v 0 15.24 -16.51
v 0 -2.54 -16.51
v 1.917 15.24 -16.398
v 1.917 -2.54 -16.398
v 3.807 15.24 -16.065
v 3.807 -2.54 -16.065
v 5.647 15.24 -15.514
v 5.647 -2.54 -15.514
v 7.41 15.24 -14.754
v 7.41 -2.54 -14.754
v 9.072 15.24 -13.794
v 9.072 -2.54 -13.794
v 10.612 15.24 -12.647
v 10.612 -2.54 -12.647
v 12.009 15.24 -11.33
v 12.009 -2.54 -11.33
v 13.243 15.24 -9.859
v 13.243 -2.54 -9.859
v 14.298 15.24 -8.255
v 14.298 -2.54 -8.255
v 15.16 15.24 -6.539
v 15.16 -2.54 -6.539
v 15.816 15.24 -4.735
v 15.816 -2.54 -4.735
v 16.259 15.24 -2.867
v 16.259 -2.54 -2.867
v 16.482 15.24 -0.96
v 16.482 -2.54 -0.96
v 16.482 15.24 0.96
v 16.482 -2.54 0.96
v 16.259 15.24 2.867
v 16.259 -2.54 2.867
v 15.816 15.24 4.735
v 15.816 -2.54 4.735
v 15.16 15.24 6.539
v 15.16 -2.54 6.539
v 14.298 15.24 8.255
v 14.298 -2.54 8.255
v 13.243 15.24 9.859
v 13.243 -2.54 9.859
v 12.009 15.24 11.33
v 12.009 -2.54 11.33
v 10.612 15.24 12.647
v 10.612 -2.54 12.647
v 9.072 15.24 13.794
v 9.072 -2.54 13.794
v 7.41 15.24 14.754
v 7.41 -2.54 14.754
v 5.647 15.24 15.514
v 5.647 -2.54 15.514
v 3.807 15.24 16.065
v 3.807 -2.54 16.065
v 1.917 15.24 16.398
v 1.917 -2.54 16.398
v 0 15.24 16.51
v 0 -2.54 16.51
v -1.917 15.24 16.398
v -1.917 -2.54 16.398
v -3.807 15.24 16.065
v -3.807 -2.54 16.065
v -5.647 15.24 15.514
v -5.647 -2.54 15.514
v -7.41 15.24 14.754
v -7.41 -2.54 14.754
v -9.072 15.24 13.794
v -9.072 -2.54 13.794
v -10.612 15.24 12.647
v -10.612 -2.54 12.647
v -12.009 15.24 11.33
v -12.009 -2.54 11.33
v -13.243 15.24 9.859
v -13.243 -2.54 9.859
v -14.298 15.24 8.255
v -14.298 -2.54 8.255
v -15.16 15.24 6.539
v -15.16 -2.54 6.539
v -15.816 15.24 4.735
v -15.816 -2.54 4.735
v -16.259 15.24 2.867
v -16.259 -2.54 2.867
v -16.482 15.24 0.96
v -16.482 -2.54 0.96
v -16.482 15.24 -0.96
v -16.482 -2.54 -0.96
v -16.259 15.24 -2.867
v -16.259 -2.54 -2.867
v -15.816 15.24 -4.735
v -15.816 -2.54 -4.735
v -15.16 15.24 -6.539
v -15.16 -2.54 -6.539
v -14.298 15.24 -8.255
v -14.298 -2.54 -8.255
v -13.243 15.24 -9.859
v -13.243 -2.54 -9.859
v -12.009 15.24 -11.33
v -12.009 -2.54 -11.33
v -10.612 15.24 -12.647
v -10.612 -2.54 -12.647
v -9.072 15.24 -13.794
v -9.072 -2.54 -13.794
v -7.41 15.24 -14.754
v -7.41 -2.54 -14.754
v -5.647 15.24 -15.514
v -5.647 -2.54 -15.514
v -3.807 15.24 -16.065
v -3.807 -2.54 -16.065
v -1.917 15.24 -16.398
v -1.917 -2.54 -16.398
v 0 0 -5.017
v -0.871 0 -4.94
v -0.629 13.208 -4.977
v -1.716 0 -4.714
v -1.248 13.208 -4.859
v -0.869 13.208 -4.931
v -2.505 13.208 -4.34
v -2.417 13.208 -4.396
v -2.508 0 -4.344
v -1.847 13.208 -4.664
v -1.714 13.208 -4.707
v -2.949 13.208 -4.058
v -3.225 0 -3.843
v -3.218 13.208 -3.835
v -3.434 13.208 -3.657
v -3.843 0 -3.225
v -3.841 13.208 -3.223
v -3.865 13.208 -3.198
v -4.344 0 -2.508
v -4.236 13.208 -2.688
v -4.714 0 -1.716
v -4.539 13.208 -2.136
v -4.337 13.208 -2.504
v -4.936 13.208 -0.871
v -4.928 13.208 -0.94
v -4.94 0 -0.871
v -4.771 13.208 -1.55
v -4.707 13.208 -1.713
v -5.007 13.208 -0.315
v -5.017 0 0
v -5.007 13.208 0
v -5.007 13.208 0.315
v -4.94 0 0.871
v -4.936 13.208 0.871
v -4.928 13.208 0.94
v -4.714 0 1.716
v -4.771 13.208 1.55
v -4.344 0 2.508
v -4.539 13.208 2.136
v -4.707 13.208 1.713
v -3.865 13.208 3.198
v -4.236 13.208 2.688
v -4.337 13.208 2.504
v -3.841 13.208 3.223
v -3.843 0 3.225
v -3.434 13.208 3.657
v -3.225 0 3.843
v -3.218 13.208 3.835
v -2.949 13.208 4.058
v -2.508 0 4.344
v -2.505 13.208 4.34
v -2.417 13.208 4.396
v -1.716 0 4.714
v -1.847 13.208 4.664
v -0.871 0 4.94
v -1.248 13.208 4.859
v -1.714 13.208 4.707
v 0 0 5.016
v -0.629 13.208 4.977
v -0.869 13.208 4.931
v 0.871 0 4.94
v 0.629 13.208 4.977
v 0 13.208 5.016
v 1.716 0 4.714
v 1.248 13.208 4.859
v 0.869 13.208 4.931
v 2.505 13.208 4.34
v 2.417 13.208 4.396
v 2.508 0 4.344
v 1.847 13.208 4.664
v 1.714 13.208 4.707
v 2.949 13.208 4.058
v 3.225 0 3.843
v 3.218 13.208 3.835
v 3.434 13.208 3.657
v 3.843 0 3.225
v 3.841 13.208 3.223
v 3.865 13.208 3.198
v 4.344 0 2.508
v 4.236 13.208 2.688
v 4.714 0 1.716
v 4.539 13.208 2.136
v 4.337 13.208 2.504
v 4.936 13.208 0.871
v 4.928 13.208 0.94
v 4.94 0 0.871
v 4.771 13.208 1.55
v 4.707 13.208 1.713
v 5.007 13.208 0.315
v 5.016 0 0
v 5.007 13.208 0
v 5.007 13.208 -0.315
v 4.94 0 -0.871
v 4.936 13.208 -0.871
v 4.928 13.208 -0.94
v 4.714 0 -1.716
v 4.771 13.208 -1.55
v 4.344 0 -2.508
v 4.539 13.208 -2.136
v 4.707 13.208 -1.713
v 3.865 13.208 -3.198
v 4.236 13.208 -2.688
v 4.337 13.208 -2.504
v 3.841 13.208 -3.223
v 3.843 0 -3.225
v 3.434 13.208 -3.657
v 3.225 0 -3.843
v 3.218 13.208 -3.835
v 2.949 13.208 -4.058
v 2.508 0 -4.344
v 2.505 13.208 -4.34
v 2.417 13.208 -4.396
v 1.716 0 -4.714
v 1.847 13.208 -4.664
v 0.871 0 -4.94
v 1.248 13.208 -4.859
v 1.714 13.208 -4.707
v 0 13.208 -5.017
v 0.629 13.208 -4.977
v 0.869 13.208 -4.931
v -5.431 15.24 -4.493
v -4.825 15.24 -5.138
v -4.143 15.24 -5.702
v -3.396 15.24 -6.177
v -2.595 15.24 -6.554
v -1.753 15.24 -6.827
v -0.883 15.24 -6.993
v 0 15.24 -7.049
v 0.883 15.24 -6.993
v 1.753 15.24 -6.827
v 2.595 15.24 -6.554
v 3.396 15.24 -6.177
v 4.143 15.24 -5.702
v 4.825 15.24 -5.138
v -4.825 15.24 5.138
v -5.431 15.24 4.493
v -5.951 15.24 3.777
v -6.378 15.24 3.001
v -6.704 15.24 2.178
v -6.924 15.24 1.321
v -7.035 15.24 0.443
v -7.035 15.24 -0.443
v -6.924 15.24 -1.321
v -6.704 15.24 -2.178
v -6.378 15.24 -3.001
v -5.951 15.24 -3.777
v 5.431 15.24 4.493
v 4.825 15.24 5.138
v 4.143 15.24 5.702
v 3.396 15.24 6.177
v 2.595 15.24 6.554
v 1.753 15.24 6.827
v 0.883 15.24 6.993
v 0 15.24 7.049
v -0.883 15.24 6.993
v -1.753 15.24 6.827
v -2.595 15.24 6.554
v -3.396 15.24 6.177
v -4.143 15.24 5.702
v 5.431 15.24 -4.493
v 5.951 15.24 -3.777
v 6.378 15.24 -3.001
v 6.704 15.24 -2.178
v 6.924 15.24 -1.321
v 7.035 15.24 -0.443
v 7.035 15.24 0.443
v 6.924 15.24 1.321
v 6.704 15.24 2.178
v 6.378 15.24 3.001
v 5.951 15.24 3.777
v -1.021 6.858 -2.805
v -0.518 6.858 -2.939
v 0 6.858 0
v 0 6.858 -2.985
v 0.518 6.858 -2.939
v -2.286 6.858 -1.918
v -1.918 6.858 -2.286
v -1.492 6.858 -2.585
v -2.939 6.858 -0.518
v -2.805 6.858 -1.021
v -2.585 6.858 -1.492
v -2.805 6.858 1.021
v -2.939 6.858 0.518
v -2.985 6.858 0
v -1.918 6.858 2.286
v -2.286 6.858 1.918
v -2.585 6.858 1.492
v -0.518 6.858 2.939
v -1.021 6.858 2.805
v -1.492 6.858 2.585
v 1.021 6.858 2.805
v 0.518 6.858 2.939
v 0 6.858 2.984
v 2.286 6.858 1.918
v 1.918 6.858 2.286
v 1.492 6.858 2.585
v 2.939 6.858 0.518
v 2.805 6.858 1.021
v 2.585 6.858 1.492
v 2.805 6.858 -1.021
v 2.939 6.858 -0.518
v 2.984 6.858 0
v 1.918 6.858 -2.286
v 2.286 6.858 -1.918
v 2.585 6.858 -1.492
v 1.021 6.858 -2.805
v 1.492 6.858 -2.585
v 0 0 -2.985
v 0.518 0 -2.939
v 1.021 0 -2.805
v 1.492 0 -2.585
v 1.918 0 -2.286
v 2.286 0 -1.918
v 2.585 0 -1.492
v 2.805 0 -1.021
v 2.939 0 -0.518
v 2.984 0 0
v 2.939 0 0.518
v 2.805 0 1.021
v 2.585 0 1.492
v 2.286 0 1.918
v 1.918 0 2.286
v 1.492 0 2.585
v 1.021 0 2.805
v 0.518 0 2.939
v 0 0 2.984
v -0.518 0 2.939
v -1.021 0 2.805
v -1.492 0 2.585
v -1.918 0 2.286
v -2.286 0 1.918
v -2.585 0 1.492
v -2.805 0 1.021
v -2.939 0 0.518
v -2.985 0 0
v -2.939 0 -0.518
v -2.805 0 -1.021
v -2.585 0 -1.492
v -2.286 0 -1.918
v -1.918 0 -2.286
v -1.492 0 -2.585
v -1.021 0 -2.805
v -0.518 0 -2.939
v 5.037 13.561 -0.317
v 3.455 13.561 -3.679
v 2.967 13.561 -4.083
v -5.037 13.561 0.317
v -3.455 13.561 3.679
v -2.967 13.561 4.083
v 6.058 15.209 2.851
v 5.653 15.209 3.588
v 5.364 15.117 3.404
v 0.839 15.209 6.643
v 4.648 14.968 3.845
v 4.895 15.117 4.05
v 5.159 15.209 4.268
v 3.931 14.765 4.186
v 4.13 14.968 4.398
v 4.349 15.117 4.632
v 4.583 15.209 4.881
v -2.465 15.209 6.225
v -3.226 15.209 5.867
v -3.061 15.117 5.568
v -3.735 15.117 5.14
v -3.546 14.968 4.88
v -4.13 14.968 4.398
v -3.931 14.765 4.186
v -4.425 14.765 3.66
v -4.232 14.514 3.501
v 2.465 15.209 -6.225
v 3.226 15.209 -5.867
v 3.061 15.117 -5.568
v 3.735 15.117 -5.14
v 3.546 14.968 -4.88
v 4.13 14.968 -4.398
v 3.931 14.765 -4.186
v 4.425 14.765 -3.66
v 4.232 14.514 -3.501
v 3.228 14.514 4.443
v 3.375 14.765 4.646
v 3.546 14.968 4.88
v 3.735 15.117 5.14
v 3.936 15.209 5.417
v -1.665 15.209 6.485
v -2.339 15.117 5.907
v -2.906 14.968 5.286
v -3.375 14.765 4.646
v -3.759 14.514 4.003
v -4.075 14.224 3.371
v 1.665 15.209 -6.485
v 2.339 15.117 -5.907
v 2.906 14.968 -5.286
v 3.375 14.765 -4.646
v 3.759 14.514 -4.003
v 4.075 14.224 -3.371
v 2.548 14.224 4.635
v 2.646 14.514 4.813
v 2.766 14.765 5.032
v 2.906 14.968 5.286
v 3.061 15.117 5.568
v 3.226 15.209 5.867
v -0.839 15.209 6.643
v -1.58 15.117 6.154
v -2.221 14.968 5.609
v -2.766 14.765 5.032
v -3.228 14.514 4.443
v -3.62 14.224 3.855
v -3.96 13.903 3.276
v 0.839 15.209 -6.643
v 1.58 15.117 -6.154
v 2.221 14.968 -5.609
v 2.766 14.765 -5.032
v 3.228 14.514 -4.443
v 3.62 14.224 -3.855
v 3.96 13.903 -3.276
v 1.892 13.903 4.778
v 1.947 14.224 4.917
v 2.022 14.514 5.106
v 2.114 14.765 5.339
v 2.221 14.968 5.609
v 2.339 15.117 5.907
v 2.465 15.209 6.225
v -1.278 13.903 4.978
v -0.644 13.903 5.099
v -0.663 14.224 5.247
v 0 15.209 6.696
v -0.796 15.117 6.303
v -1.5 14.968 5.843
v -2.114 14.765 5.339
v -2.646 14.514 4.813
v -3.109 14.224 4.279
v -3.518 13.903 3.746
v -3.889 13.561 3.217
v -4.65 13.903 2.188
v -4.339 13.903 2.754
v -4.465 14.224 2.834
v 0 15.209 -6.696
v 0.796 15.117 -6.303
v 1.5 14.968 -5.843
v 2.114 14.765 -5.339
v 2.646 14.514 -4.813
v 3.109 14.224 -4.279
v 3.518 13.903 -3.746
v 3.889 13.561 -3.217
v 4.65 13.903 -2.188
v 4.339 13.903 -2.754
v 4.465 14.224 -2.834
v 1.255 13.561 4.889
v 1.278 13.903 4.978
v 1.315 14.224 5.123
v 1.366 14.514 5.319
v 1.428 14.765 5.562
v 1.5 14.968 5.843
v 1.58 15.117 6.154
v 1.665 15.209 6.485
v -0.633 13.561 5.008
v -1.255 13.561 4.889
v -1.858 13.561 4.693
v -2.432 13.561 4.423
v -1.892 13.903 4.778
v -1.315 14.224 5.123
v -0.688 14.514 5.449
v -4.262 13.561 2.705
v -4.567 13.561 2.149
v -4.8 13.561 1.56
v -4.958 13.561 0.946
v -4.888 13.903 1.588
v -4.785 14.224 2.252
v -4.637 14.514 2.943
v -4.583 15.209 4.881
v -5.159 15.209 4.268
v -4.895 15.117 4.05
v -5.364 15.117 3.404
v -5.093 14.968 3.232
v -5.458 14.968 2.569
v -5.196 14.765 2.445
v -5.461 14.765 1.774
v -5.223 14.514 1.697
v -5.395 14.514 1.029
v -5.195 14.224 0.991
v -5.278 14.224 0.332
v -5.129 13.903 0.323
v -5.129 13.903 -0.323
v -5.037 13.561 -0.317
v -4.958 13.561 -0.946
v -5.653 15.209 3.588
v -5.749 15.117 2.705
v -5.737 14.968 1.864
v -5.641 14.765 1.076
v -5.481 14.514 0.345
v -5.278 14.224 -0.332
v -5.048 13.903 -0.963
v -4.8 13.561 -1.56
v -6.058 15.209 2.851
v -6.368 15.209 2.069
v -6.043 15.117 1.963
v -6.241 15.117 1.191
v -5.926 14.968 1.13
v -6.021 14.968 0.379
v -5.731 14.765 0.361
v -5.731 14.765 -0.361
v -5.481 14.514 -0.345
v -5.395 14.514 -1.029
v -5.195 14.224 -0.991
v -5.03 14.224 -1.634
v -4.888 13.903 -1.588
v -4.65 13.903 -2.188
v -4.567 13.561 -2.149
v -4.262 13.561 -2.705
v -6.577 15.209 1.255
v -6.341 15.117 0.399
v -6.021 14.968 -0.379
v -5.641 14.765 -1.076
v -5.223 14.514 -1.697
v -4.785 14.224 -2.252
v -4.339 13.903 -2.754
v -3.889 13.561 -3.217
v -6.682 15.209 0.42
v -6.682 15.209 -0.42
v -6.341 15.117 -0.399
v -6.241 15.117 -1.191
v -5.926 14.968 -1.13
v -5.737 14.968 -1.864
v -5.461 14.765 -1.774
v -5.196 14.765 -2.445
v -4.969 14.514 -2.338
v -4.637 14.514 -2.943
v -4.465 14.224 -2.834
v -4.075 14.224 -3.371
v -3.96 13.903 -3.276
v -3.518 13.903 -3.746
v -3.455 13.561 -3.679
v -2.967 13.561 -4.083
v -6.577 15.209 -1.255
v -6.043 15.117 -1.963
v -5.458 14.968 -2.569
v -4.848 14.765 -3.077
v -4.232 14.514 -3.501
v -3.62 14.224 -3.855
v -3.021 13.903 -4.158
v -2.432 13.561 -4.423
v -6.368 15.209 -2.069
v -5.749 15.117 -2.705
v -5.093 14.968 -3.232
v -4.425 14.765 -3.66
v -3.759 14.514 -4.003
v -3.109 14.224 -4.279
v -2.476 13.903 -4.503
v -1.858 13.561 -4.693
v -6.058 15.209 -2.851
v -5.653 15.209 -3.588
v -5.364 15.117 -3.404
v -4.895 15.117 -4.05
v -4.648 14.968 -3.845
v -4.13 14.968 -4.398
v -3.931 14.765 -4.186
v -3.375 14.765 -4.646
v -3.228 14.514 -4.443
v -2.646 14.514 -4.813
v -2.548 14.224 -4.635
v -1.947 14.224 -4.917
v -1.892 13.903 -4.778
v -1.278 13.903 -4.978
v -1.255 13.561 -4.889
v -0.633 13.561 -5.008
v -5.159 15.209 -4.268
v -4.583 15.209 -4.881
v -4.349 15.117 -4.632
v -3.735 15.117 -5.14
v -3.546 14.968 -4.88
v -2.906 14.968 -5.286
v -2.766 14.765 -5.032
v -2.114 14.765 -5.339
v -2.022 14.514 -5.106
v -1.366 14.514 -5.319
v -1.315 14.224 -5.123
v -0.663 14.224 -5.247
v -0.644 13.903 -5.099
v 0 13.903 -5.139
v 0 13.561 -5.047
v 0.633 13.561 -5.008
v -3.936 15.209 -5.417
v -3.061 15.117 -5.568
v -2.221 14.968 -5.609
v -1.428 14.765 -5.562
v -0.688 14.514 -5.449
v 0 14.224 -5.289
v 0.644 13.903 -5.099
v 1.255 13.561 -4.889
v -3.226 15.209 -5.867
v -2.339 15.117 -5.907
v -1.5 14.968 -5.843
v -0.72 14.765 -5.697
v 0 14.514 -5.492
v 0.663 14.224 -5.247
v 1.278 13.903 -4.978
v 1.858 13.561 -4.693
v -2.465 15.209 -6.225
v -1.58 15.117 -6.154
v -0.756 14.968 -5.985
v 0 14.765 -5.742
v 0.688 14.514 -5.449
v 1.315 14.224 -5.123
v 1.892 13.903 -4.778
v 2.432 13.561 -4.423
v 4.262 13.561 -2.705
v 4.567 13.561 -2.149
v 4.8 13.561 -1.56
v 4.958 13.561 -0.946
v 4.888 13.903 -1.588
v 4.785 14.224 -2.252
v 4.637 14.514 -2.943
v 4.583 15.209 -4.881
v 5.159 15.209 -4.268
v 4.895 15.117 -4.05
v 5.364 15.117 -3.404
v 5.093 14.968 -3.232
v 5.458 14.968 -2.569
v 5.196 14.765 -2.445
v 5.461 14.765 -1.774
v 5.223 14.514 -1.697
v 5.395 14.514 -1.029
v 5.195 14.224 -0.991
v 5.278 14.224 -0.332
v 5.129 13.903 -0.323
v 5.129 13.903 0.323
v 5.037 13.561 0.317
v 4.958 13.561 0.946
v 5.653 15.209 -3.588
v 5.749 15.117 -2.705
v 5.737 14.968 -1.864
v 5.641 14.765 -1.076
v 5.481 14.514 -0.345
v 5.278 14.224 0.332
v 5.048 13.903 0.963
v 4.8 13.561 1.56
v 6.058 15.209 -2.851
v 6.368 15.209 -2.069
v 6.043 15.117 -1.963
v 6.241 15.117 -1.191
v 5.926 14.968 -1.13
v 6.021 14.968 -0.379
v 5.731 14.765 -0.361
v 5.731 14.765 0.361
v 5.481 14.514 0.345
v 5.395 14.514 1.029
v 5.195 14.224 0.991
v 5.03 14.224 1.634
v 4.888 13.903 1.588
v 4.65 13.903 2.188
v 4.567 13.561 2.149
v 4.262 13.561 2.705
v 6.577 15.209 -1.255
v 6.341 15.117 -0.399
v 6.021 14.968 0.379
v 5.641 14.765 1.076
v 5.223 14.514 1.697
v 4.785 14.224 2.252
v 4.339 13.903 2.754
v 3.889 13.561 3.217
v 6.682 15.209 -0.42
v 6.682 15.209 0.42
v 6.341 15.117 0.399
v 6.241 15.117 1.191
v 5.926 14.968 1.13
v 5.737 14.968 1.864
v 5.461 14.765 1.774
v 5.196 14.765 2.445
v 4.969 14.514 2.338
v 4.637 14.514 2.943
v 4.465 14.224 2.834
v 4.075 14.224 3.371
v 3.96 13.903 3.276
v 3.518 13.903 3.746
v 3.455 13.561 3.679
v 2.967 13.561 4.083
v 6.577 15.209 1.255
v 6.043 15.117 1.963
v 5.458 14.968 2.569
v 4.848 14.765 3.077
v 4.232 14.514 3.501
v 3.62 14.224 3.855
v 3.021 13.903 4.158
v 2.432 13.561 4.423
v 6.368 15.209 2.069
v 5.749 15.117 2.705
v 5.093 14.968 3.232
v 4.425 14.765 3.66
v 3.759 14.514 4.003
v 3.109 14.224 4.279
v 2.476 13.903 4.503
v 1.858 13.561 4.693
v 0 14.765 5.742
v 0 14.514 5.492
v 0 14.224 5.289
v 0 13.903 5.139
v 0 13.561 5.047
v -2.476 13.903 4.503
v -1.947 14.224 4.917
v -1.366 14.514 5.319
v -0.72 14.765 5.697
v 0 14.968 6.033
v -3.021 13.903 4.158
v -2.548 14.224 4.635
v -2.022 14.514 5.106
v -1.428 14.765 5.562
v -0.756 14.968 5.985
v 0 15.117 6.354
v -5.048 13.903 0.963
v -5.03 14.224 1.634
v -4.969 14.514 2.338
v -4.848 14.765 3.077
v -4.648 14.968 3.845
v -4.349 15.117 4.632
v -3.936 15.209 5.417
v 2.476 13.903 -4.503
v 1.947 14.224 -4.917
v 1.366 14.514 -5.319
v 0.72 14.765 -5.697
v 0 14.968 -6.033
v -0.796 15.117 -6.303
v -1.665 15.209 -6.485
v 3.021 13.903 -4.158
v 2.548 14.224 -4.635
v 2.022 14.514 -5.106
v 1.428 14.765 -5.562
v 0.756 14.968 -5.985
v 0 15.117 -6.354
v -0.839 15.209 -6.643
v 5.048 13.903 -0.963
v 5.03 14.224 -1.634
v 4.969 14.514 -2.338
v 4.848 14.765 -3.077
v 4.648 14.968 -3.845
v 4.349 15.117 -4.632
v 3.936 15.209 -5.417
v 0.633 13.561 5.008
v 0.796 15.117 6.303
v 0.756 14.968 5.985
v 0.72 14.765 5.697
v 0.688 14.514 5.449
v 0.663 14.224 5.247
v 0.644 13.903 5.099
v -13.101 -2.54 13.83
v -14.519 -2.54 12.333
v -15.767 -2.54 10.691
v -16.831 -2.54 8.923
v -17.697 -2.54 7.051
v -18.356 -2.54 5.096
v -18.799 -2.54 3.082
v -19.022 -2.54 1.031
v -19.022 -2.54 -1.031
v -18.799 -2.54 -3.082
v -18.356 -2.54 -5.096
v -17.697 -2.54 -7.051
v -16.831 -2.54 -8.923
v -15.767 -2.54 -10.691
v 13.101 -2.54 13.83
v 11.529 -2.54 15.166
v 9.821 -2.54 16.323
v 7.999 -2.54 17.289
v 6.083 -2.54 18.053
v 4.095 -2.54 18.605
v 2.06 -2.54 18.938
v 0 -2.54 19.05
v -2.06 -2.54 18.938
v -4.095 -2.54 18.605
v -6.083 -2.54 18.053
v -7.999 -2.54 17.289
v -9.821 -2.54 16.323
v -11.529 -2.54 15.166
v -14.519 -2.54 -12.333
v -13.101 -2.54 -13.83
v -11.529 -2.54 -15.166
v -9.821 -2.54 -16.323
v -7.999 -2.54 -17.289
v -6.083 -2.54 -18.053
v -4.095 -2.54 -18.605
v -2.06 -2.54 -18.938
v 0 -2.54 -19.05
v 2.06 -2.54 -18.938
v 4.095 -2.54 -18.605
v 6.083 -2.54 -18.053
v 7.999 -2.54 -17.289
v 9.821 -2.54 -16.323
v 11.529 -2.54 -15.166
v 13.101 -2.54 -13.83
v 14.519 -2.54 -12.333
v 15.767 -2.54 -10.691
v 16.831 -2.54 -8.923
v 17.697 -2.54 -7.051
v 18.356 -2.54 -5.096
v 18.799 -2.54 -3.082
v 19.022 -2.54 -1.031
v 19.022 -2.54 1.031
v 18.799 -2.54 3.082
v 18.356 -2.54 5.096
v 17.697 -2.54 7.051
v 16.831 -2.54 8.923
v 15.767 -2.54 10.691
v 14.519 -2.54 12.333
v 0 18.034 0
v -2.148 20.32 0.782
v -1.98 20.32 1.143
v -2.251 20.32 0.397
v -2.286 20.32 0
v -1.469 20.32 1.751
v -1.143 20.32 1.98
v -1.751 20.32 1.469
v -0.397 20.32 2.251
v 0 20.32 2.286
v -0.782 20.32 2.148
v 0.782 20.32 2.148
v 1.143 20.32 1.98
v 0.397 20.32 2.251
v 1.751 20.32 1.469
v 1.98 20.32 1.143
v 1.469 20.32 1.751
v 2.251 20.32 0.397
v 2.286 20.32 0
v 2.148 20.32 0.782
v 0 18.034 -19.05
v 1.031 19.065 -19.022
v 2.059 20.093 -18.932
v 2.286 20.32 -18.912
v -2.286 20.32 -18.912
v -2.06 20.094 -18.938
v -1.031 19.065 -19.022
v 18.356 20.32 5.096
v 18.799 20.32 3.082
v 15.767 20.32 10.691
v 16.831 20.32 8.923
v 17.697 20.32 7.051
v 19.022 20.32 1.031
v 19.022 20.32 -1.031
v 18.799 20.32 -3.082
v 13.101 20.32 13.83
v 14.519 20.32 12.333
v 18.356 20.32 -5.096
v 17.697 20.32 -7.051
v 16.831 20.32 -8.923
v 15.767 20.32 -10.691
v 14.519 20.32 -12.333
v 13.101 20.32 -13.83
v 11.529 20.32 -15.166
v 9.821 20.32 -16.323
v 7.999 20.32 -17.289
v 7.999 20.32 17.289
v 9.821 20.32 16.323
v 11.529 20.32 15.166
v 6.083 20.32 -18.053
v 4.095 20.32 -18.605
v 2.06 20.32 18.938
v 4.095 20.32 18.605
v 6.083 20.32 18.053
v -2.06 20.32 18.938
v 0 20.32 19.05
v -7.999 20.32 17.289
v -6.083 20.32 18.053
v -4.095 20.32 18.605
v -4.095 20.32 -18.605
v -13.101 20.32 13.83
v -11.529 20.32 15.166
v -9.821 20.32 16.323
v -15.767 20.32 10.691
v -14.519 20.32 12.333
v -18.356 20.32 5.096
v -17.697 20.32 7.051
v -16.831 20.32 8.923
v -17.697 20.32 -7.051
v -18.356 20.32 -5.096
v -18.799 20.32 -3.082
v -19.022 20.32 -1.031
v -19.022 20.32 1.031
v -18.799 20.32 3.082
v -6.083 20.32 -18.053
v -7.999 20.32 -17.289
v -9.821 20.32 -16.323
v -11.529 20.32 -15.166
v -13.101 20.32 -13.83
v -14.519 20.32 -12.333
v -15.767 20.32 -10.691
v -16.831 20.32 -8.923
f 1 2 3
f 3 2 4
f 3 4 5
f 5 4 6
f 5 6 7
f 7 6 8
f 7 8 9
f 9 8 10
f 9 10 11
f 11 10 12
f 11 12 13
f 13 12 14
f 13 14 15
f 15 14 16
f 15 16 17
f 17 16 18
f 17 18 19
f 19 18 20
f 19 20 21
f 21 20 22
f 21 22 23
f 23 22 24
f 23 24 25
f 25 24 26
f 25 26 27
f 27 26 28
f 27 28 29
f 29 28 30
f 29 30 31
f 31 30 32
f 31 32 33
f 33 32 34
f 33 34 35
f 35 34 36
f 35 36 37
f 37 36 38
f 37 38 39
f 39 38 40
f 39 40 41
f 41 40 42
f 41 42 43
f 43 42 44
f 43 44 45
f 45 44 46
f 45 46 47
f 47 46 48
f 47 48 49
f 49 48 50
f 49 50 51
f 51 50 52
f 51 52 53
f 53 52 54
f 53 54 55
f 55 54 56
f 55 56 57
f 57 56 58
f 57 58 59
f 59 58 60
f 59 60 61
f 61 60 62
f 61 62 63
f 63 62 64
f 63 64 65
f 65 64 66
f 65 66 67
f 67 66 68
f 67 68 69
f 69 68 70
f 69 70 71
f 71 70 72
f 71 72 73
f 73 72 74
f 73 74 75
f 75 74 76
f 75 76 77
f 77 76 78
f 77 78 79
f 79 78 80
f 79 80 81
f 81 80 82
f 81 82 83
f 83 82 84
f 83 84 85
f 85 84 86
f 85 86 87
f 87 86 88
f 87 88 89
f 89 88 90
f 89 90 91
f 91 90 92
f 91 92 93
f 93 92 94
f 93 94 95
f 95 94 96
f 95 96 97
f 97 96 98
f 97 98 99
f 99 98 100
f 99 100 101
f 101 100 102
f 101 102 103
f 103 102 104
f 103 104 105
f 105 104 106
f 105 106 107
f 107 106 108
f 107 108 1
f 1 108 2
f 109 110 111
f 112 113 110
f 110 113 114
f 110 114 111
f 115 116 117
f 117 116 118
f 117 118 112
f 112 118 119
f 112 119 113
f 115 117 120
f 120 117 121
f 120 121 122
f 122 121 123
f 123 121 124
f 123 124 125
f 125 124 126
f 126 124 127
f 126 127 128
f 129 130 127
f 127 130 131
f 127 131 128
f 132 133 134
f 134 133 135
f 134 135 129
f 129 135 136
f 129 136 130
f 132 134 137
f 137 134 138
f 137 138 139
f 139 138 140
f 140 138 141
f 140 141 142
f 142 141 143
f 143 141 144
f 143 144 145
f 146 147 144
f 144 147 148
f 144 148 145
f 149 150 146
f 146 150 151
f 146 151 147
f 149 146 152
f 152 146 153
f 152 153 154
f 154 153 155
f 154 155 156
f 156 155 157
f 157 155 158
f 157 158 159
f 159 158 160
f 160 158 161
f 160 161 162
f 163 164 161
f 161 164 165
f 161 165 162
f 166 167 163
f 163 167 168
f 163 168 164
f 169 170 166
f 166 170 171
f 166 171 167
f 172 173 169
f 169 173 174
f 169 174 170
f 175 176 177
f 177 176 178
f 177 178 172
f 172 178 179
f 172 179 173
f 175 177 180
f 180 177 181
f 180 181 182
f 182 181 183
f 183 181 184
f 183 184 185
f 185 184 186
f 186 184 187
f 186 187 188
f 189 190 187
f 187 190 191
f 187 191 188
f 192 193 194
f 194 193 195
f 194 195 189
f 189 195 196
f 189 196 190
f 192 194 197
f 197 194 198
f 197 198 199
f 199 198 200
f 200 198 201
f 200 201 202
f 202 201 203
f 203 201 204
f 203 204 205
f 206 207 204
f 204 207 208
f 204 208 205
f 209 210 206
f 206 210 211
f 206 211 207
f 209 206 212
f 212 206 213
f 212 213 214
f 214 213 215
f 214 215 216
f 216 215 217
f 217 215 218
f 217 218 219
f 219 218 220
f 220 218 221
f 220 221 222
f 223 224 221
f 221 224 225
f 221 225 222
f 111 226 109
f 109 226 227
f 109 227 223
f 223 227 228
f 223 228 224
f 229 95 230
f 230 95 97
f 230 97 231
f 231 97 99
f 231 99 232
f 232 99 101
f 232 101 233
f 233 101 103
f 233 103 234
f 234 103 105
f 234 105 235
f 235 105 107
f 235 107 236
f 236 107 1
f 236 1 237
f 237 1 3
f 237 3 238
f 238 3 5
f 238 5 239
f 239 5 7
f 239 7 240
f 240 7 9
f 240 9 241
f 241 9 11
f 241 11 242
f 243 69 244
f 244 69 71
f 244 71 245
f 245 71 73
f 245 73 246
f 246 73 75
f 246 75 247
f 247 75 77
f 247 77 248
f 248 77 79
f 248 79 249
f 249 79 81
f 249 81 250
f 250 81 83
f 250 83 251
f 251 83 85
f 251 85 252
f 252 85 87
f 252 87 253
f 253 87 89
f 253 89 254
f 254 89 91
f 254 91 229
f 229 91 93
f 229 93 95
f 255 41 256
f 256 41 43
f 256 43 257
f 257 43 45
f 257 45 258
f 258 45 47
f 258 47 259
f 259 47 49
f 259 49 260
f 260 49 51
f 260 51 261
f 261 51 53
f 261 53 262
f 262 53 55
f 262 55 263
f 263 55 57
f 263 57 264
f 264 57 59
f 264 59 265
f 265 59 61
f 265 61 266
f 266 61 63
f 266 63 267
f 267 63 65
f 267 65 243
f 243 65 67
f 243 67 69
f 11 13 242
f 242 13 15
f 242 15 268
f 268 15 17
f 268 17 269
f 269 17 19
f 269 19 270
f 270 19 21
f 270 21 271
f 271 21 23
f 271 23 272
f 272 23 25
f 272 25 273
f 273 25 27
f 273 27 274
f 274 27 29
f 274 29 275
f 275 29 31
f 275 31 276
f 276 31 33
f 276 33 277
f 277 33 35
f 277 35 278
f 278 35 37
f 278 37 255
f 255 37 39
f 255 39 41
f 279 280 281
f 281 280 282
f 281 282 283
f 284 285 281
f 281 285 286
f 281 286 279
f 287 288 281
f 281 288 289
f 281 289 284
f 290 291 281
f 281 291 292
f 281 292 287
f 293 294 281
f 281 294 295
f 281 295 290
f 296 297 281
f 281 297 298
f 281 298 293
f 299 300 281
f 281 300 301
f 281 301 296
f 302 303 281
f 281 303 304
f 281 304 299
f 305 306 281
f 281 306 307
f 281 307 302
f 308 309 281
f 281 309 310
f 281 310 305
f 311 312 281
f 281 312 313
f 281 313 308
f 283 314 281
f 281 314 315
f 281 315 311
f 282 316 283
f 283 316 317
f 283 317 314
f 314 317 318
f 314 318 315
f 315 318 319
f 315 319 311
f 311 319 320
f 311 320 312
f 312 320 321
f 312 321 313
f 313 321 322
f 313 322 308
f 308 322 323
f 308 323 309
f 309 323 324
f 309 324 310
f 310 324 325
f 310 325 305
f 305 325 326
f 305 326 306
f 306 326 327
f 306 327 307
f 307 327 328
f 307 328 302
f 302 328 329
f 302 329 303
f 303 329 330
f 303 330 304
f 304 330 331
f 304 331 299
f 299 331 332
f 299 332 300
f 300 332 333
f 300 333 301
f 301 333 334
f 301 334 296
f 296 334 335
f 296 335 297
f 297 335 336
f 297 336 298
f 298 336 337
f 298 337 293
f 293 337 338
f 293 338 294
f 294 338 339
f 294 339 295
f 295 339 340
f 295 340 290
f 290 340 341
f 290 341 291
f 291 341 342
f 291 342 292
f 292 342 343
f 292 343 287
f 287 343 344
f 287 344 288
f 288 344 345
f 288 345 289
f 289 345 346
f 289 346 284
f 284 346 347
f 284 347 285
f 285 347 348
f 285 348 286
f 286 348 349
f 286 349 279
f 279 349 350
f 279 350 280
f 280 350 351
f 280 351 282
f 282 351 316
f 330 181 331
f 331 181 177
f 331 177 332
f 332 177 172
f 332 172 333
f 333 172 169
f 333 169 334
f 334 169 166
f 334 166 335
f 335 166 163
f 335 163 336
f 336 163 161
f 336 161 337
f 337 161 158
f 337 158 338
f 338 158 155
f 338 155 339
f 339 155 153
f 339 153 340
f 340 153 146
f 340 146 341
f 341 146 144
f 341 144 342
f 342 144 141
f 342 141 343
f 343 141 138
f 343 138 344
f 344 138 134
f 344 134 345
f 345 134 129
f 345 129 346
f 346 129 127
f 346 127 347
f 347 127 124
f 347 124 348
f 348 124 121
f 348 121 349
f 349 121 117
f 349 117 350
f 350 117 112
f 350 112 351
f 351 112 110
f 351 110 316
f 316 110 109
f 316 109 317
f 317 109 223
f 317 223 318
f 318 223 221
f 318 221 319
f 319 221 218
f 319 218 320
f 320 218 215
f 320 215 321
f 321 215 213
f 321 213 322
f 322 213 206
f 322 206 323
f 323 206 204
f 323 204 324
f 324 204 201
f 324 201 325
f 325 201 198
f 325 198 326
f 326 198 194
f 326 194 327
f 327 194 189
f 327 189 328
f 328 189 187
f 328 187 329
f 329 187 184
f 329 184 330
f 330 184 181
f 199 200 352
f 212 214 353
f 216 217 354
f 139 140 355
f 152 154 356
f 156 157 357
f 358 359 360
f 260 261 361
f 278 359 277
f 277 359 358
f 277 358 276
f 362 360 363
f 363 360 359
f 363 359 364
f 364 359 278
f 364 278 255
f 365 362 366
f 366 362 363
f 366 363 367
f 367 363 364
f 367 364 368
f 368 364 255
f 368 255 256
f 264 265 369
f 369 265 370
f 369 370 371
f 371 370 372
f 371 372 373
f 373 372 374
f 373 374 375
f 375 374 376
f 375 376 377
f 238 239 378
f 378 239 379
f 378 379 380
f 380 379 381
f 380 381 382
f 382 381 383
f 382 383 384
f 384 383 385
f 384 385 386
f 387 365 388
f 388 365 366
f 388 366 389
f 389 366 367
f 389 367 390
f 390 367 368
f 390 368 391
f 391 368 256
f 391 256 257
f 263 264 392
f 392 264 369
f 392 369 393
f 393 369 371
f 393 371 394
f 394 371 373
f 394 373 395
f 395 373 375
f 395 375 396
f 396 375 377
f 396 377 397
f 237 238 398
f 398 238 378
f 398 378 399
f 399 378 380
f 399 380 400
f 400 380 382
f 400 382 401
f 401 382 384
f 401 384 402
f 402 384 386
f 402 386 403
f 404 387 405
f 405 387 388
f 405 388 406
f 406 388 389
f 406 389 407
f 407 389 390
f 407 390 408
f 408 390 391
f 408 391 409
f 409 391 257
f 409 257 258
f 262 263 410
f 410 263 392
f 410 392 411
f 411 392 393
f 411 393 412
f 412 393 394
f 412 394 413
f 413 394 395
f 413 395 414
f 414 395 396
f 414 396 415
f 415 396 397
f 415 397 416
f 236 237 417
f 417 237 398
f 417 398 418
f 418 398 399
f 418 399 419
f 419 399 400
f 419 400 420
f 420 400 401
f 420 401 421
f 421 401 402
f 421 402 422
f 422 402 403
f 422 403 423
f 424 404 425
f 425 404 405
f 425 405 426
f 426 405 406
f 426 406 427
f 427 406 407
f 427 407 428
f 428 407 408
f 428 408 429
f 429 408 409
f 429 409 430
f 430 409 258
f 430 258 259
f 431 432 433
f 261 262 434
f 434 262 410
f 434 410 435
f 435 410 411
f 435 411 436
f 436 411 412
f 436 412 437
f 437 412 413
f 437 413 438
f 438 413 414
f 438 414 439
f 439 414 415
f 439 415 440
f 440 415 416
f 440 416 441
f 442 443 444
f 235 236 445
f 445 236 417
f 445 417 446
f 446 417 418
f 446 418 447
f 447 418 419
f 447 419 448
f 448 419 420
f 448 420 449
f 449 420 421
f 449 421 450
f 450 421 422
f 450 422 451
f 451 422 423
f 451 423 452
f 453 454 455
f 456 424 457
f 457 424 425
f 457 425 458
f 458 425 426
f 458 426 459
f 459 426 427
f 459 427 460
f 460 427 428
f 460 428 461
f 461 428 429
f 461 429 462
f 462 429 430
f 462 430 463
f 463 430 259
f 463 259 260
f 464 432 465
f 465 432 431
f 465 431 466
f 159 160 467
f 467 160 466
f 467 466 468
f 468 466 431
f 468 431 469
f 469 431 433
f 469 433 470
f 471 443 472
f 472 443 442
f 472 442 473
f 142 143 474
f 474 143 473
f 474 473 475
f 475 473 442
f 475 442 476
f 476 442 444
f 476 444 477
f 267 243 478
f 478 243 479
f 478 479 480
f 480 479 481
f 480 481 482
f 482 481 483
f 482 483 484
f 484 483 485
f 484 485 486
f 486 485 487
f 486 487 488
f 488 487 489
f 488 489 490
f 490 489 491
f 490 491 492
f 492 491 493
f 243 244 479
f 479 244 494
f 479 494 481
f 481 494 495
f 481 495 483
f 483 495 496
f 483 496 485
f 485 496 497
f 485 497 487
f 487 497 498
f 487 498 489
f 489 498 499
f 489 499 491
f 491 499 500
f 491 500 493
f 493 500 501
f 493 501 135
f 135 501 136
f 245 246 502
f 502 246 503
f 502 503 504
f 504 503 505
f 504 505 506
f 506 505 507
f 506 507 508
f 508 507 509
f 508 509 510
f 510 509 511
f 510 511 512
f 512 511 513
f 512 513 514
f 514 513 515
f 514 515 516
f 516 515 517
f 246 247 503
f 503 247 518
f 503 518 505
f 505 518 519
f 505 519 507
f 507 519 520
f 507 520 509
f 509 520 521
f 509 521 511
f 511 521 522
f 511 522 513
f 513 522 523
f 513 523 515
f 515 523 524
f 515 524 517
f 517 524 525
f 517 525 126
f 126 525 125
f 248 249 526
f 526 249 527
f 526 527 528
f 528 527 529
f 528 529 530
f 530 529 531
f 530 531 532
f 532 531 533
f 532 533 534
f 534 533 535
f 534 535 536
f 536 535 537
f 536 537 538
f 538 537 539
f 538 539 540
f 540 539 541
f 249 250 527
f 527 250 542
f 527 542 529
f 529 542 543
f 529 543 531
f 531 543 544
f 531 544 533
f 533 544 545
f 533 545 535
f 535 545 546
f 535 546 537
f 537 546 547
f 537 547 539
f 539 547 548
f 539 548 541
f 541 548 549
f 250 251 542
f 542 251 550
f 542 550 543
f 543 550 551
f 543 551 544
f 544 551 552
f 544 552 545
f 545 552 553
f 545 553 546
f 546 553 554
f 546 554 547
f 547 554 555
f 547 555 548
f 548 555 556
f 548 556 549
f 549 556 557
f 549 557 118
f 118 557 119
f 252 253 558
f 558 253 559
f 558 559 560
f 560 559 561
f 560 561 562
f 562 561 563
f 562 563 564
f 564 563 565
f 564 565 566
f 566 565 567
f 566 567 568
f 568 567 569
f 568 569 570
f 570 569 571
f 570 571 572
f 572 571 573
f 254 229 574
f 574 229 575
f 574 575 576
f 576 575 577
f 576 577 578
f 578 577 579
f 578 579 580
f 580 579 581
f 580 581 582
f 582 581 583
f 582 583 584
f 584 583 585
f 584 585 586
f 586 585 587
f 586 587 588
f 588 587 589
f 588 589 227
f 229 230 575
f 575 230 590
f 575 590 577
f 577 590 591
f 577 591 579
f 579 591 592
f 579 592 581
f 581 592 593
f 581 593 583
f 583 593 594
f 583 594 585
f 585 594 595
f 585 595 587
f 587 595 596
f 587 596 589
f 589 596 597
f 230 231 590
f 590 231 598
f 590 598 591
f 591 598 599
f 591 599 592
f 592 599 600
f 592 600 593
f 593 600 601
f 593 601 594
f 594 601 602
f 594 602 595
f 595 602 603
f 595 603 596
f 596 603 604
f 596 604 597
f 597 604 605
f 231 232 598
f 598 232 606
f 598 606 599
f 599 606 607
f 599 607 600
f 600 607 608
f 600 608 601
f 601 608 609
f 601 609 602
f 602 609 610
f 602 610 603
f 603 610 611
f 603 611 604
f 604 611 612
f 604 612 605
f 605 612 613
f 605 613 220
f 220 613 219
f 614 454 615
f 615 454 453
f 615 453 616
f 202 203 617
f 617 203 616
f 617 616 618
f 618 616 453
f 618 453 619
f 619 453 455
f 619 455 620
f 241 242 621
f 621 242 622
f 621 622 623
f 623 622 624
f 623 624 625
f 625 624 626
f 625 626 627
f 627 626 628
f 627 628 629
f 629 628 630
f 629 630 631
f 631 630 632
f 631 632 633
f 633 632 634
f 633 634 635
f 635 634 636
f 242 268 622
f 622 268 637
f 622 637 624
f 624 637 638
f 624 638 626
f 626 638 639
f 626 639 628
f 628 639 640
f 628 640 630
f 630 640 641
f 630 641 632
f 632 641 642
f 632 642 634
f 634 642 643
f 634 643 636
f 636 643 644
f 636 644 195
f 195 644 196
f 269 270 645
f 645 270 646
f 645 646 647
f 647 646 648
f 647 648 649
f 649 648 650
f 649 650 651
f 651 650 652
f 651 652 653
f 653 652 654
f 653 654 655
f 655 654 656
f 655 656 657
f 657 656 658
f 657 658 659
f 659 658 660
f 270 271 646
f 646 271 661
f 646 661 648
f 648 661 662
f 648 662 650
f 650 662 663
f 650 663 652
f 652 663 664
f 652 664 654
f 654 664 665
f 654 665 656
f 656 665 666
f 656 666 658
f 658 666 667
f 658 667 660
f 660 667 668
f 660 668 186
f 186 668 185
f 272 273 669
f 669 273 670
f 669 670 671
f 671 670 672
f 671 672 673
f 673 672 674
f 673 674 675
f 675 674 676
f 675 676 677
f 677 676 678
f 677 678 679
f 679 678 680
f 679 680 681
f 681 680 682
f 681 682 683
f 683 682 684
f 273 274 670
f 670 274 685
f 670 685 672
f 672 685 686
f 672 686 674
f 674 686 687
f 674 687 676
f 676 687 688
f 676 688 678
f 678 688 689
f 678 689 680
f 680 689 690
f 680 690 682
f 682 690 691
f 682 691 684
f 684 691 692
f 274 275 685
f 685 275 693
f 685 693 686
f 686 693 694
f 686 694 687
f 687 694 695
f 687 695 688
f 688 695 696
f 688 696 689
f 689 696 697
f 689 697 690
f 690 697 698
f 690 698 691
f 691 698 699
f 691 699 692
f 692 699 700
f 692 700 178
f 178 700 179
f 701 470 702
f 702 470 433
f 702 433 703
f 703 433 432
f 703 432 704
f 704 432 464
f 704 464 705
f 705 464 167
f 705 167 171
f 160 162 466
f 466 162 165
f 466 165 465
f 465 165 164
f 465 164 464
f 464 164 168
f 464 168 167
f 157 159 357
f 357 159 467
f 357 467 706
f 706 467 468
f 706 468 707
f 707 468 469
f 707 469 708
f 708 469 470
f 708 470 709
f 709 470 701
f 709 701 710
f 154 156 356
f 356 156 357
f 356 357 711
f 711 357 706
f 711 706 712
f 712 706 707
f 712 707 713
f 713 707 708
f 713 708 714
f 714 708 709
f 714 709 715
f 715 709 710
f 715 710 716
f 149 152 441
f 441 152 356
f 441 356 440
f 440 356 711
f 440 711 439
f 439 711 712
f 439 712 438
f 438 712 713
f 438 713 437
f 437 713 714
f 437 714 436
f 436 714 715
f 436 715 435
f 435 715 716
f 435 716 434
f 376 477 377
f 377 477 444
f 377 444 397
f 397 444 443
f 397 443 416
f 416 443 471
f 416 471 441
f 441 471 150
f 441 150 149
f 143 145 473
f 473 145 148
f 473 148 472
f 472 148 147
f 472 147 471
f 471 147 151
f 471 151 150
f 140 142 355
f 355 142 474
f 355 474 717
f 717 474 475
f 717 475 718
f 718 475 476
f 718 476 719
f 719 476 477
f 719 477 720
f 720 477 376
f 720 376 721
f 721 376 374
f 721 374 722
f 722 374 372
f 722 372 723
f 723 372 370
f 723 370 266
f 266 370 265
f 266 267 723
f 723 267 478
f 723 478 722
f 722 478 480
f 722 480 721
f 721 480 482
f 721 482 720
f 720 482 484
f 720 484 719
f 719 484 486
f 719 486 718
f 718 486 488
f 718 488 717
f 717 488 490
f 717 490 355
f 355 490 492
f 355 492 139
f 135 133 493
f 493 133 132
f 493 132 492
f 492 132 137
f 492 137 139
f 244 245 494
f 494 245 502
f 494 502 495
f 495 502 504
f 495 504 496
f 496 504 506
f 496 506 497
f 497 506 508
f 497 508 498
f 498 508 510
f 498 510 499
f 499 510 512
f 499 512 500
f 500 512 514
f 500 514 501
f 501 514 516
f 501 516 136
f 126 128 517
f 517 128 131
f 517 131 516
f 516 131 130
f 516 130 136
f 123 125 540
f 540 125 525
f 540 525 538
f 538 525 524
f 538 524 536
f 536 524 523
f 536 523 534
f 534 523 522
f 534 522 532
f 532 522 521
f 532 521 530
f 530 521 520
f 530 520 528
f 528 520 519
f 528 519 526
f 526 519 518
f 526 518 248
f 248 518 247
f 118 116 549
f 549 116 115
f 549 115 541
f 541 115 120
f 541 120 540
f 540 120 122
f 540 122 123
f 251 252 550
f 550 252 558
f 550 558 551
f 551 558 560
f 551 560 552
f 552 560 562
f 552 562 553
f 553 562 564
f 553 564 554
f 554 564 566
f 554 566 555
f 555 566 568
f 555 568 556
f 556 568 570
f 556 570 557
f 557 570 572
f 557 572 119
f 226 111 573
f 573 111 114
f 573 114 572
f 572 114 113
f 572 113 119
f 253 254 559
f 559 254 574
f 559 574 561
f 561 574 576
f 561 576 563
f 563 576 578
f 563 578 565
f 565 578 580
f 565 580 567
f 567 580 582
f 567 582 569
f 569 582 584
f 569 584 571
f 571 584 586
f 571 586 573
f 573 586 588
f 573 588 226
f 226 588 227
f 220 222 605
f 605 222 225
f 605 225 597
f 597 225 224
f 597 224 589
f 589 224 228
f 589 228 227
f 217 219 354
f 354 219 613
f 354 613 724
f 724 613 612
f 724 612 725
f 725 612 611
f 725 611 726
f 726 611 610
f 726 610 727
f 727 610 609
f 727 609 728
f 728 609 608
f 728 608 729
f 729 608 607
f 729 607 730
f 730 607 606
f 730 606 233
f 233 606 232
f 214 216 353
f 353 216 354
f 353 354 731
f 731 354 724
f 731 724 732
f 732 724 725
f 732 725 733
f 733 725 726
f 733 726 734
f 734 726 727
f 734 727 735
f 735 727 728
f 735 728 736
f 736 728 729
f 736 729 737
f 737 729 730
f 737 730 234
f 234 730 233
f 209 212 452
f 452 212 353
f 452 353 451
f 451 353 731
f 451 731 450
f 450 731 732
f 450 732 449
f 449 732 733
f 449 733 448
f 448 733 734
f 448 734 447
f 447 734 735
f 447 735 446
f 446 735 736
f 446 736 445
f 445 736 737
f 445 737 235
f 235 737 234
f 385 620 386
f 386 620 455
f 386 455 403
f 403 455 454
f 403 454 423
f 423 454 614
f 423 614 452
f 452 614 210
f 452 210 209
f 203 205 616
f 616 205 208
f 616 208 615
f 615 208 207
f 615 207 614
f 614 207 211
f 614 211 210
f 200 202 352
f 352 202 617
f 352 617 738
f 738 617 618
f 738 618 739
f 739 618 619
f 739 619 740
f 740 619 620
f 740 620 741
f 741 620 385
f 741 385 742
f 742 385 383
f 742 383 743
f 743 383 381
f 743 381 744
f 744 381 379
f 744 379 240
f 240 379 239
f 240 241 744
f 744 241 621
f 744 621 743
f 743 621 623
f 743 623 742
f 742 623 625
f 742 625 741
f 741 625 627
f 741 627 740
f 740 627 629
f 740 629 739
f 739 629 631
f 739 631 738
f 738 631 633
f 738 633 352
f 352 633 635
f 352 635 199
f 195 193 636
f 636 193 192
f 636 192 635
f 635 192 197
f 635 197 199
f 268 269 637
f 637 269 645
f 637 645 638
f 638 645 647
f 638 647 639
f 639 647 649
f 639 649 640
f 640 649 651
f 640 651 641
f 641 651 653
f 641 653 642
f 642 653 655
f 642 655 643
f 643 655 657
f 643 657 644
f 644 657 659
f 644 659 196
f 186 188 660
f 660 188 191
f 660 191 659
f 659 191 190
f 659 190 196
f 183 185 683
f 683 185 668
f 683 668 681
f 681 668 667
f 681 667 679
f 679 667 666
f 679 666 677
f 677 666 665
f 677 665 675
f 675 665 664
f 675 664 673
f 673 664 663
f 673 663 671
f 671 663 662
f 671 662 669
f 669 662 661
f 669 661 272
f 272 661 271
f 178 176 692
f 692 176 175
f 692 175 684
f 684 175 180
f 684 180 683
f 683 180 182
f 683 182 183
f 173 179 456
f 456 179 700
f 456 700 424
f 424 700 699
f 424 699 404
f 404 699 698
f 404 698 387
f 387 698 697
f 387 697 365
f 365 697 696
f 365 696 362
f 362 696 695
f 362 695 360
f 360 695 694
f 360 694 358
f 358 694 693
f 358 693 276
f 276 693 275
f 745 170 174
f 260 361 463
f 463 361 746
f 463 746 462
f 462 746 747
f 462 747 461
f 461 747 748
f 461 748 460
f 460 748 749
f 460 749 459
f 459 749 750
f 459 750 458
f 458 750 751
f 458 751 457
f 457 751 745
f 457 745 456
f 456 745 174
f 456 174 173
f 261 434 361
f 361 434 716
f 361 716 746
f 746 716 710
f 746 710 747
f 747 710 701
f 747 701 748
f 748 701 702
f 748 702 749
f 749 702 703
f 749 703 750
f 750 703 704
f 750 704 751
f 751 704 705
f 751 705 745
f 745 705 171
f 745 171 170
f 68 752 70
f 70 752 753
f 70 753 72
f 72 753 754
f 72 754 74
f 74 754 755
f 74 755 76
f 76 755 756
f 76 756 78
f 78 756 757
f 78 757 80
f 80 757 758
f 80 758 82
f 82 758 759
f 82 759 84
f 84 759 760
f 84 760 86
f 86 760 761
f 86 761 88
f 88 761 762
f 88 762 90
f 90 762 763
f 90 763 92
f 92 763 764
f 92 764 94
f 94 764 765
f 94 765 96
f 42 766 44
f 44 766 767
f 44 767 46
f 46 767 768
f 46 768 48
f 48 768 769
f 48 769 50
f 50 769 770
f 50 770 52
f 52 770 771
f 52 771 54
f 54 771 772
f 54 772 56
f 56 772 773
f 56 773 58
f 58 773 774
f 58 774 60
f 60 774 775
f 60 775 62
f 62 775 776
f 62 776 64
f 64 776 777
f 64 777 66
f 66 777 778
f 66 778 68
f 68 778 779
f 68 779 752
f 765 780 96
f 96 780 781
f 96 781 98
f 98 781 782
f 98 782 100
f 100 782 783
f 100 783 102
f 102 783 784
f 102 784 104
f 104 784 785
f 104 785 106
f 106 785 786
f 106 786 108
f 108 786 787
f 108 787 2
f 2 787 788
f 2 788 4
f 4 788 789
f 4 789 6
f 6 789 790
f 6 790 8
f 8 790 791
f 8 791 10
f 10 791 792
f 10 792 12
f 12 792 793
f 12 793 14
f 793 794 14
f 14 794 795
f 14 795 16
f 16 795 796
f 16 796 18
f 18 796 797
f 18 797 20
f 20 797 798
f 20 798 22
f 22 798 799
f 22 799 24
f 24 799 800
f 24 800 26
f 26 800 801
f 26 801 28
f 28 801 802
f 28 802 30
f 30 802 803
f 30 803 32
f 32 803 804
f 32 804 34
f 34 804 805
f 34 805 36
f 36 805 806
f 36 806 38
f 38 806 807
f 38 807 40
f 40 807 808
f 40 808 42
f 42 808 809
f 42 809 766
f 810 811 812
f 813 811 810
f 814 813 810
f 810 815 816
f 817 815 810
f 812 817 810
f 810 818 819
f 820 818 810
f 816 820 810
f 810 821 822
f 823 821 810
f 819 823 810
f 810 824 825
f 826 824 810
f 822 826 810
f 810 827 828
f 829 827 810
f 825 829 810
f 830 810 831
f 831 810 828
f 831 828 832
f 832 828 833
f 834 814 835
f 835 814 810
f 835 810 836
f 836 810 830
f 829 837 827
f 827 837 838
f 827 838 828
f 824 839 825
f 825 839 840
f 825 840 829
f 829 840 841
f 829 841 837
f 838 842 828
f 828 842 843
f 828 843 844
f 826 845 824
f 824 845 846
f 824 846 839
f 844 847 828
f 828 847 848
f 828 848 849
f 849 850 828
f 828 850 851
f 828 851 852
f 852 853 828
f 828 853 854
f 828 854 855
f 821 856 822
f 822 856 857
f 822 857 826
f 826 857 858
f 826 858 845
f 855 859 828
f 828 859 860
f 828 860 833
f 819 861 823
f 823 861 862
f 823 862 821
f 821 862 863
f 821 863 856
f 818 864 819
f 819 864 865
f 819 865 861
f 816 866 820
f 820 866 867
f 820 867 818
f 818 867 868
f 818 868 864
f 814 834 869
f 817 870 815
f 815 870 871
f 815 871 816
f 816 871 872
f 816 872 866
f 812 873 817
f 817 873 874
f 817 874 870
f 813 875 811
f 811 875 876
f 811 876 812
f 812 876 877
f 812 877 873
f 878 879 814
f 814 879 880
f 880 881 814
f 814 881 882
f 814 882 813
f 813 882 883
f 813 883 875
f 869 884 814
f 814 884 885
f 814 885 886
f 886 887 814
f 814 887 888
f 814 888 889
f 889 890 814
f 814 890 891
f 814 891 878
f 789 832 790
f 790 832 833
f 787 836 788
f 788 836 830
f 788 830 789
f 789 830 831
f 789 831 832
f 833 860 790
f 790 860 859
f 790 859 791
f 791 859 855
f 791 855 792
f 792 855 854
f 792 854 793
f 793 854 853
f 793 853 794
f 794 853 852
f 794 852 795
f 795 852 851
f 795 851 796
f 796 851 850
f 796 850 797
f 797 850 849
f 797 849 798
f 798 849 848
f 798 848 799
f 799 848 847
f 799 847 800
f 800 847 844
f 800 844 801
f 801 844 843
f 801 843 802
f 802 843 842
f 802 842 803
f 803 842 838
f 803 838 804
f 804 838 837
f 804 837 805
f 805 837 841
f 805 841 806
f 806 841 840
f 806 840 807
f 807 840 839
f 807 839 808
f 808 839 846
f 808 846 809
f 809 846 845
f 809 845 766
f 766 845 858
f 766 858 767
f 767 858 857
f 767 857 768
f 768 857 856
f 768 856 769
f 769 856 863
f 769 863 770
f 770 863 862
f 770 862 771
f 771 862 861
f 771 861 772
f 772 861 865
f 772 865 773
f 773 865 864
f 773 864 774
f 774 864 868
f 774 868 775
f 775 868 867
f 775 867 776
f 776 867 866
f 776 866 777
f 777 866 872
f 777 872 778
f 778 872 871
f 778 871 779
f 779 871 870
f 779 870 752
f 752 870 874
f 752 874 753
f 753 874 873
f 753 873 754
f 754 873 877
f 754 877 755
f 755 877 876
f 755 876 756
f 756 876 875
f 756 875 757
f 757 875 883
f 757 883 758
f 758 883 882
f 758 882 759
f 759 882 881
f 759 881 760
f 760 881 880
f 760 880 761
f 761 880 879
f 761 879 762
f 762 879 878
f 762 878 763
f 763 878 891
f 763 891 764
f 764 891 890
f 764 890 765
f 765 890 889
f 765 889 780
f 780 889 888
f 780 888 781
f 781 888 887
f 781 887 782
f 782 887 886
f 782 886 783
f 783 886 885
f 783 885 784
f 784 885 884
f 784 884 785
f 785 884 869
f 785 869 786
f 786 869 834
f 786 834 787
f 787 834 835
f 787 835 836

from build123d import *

# Parameters (mm, degrees)
SKETCH1_R           = 19.05
BOSS_EXTRUDE1_DEPTH = 20.32
SKETCH2_R           = 2.9845
CUT_EXTRUDE1_DEPTH  = 6.858
SKETCH3_R           = 16.51
SKETCH3_R_2         = 5.0165
CUT_EXTRUDE2_DEPTH  = 15.24
FILLET1_R           = 2.032
CUT_EXTRUDE3_START  = -2.286
CUT_EXTRUDE3_DEPTH  = 2.286
CHAMFER1_SIZE       = 2.54
BOSS_EXTRUDE2_START = 2.54
SKETCH6_R           = 19.05
SKETCH6_R_2         = 16.51
BOSS_EXTRUDE2_DEPTH = 2.54


with BuildPart() as part:
    # Sketch1 → Boss-Extrude1 (new body)
    with BuildSketch(Plane(origin=(0, 0, 0), x_dir=(1, 0, 0), z_dir=(0, 1, 0))):
        with Locations(Location((0, 0, 0), (0, 0, 270))):
            Circle(SKETCH1_R)
    extrude(amount=BOSS_EXTRUDE1_DEPTH)

    # Sketch2 → Cut-Extrude1 (cut)
    with BuildSketch(Plane(origin=(0, 0, 0), x_dir=(-1, 0, 0), z_dir=(0, -1, 0))):
        with Locations(Location((0, 0, 0), (0, 0, 90))):
            Circle(SKETCH2_R)
    extrude(amount=-CUT_EXTRUDE1_DEPTH, mode=Mode.SUBTRACT)

    # Sketch3 → Cut-Extrude2 (cut)
    with BuildSketch(Plane.XZ):
        with Locations(Location((0, 0, 0), (0, 0, 270))):
            Circle(SKETCH3_R)
        with Locations(Location((0, 0, 0), (0, 0, 270))):
            Circle(SKETCH3_R_2, mode=Mode.SUBTRACT)
    extrude(amount=-CUT_EXTRUDE2_DEPTH, mode=Mode.SUBTRACT)

    # Fillet1
    fillet1_edges = [part.edges().sort_by_distance(p)[0] for p in [
        (0, 15.24, 5.0165),
    ]]
    fillet(fillet1_edges, radius=FILLET1_R)

    # Sketch4 → Cut-Extrude3 (cut)
    with BuildSketch(Plane(origin=(0, 20.32, 0), x_dir=(1, 0, 0), z_dir=(0, 1, 0)).offset(CUT_EXTRUDE3_START)):
        with BuildLine():
            Line((-2.54, 0), (-2.54, 18.879907309))
            ThreePointArc((-2.54, 18.879907309), (0, 19.05), (2.54, 18.879907309))
            Line((2.54, 18.879907309), (2.54, 0))
            ThreePointArc((2.54, 0), (0, -2.54), (-2.54, 0))
        make_face()
    extrude(amount=CUT_EXTRUDE3_DEPTH, mode=Mode.SUBTRACT)

    # Chamfer1
    # the kernel refuses this chamfer: 2.54 mm, written as the material it adds along each edge
    with BuildSketch(Plane(origin=(2.54, 18.034, -25.411982099), x_dir=(-1, 0, 0), z_dir=(0, 0, 1))) as chamfer1_piece_1_section:
        Polygon((CHAMFER1_SIZE, 0), (0, -CHAMFER1_SIZE), (0, 0), align=None)
    chamfer1_piece_1 = extrude(amount=25.411982099, mode=Mode.PRIVATE)
    chamfer1_piece_1 = chamfer1_piece_1 & Plane(origin=(0, 18.034, 0), x_dir=(0, 0, 1), z_dir=(0, -1, 0)) * Cylinder(19.05, 61, mode=Mode.PRIVATE)
    chamfer1_piece_1 = split(chamfer1_piece_1, bisect_by=Plane(origin=(2.54, 20.32, -25.411982099), z_dir=(0, -1, 0)), keep=Keep.TOP, mode=Mode.PRIVATE)
    add(chamfer1_piece_1)
    with BuildSketch(Plane(origin=(0, 18.034, 0), x_dir=(1, 0, 0), z_dir=(0, 0, -1))) as chamfer1_piece_2_section:
        Polygon((2.54 - CHAMFER1_SIZE, 0), (2.54, -CHAMFER1_SIZE), (2.54, 0), align=None)
    chamfer1_piece_2 = revolve(axis=Axis((0, 18.034, 0), (0, -1, 0)), revolution_arc=180, mode=Mode.PRIVATE)
    chamfer1_piece_2 = split(chamfer1_piece_2, bisect_by=Plane(origin=(0, 20.32, 0), z_dir=(0, -1, 0)), keep=Keep.TOP, mode=Mode.PRIVATE)
    add(chamfer1_piece_2)
    with BuildSketch(Plane(origin=(-2.54, 18.034, 0), x_dir=(0, 1, 0), z_dir=(0, 0, -1))) as chamfer1_piece_3_section:
        Polygon((CHAMFER1_SIZE, 0), (0, CHAMFER1_SIZE), (0, 0), align=None)
    chamfer1_piece_3 = extrude(amount=25.411982099, mode=Mode.PRIVATE)
    chamfer1_piece_3 = chamfer1_piece_3 & Plane(origin=(0, 18.034, 0), x_dir=(0, 0, 1), z_dir=(0, -1, 0)) * Cylinder(19.05, 61, mode=Mode.PRIVATE)
    chamfer1_piece_3 = split(chamfer1_piece_3, bisect_by=Plane(origin=(-2.54, 20.32, 0), z_dir=(0, -1, 0)), keep=Keep.TOP, mode=Mode.PRIVATE)
    add(chamfer1_piece_3)

    # Sketch6 → Boss-Extrude2 (add)
    with BuildSketch(Plane.XZ.offset(BOSS_EXTRUDE2_START)):
        with Locations(Location((0, 0, 0), (0, 0, 270))):
            Circle(SKETCH6_R)
        with Locations(Location((0, 0, 0), (0, 0, 270))):
            Circle(SKETCH6_R_2, mode=Mode.SUBTRACT)
    extrude(amount=-BOSS_EXTRUDE2_DEPTH)


solid = part.part
